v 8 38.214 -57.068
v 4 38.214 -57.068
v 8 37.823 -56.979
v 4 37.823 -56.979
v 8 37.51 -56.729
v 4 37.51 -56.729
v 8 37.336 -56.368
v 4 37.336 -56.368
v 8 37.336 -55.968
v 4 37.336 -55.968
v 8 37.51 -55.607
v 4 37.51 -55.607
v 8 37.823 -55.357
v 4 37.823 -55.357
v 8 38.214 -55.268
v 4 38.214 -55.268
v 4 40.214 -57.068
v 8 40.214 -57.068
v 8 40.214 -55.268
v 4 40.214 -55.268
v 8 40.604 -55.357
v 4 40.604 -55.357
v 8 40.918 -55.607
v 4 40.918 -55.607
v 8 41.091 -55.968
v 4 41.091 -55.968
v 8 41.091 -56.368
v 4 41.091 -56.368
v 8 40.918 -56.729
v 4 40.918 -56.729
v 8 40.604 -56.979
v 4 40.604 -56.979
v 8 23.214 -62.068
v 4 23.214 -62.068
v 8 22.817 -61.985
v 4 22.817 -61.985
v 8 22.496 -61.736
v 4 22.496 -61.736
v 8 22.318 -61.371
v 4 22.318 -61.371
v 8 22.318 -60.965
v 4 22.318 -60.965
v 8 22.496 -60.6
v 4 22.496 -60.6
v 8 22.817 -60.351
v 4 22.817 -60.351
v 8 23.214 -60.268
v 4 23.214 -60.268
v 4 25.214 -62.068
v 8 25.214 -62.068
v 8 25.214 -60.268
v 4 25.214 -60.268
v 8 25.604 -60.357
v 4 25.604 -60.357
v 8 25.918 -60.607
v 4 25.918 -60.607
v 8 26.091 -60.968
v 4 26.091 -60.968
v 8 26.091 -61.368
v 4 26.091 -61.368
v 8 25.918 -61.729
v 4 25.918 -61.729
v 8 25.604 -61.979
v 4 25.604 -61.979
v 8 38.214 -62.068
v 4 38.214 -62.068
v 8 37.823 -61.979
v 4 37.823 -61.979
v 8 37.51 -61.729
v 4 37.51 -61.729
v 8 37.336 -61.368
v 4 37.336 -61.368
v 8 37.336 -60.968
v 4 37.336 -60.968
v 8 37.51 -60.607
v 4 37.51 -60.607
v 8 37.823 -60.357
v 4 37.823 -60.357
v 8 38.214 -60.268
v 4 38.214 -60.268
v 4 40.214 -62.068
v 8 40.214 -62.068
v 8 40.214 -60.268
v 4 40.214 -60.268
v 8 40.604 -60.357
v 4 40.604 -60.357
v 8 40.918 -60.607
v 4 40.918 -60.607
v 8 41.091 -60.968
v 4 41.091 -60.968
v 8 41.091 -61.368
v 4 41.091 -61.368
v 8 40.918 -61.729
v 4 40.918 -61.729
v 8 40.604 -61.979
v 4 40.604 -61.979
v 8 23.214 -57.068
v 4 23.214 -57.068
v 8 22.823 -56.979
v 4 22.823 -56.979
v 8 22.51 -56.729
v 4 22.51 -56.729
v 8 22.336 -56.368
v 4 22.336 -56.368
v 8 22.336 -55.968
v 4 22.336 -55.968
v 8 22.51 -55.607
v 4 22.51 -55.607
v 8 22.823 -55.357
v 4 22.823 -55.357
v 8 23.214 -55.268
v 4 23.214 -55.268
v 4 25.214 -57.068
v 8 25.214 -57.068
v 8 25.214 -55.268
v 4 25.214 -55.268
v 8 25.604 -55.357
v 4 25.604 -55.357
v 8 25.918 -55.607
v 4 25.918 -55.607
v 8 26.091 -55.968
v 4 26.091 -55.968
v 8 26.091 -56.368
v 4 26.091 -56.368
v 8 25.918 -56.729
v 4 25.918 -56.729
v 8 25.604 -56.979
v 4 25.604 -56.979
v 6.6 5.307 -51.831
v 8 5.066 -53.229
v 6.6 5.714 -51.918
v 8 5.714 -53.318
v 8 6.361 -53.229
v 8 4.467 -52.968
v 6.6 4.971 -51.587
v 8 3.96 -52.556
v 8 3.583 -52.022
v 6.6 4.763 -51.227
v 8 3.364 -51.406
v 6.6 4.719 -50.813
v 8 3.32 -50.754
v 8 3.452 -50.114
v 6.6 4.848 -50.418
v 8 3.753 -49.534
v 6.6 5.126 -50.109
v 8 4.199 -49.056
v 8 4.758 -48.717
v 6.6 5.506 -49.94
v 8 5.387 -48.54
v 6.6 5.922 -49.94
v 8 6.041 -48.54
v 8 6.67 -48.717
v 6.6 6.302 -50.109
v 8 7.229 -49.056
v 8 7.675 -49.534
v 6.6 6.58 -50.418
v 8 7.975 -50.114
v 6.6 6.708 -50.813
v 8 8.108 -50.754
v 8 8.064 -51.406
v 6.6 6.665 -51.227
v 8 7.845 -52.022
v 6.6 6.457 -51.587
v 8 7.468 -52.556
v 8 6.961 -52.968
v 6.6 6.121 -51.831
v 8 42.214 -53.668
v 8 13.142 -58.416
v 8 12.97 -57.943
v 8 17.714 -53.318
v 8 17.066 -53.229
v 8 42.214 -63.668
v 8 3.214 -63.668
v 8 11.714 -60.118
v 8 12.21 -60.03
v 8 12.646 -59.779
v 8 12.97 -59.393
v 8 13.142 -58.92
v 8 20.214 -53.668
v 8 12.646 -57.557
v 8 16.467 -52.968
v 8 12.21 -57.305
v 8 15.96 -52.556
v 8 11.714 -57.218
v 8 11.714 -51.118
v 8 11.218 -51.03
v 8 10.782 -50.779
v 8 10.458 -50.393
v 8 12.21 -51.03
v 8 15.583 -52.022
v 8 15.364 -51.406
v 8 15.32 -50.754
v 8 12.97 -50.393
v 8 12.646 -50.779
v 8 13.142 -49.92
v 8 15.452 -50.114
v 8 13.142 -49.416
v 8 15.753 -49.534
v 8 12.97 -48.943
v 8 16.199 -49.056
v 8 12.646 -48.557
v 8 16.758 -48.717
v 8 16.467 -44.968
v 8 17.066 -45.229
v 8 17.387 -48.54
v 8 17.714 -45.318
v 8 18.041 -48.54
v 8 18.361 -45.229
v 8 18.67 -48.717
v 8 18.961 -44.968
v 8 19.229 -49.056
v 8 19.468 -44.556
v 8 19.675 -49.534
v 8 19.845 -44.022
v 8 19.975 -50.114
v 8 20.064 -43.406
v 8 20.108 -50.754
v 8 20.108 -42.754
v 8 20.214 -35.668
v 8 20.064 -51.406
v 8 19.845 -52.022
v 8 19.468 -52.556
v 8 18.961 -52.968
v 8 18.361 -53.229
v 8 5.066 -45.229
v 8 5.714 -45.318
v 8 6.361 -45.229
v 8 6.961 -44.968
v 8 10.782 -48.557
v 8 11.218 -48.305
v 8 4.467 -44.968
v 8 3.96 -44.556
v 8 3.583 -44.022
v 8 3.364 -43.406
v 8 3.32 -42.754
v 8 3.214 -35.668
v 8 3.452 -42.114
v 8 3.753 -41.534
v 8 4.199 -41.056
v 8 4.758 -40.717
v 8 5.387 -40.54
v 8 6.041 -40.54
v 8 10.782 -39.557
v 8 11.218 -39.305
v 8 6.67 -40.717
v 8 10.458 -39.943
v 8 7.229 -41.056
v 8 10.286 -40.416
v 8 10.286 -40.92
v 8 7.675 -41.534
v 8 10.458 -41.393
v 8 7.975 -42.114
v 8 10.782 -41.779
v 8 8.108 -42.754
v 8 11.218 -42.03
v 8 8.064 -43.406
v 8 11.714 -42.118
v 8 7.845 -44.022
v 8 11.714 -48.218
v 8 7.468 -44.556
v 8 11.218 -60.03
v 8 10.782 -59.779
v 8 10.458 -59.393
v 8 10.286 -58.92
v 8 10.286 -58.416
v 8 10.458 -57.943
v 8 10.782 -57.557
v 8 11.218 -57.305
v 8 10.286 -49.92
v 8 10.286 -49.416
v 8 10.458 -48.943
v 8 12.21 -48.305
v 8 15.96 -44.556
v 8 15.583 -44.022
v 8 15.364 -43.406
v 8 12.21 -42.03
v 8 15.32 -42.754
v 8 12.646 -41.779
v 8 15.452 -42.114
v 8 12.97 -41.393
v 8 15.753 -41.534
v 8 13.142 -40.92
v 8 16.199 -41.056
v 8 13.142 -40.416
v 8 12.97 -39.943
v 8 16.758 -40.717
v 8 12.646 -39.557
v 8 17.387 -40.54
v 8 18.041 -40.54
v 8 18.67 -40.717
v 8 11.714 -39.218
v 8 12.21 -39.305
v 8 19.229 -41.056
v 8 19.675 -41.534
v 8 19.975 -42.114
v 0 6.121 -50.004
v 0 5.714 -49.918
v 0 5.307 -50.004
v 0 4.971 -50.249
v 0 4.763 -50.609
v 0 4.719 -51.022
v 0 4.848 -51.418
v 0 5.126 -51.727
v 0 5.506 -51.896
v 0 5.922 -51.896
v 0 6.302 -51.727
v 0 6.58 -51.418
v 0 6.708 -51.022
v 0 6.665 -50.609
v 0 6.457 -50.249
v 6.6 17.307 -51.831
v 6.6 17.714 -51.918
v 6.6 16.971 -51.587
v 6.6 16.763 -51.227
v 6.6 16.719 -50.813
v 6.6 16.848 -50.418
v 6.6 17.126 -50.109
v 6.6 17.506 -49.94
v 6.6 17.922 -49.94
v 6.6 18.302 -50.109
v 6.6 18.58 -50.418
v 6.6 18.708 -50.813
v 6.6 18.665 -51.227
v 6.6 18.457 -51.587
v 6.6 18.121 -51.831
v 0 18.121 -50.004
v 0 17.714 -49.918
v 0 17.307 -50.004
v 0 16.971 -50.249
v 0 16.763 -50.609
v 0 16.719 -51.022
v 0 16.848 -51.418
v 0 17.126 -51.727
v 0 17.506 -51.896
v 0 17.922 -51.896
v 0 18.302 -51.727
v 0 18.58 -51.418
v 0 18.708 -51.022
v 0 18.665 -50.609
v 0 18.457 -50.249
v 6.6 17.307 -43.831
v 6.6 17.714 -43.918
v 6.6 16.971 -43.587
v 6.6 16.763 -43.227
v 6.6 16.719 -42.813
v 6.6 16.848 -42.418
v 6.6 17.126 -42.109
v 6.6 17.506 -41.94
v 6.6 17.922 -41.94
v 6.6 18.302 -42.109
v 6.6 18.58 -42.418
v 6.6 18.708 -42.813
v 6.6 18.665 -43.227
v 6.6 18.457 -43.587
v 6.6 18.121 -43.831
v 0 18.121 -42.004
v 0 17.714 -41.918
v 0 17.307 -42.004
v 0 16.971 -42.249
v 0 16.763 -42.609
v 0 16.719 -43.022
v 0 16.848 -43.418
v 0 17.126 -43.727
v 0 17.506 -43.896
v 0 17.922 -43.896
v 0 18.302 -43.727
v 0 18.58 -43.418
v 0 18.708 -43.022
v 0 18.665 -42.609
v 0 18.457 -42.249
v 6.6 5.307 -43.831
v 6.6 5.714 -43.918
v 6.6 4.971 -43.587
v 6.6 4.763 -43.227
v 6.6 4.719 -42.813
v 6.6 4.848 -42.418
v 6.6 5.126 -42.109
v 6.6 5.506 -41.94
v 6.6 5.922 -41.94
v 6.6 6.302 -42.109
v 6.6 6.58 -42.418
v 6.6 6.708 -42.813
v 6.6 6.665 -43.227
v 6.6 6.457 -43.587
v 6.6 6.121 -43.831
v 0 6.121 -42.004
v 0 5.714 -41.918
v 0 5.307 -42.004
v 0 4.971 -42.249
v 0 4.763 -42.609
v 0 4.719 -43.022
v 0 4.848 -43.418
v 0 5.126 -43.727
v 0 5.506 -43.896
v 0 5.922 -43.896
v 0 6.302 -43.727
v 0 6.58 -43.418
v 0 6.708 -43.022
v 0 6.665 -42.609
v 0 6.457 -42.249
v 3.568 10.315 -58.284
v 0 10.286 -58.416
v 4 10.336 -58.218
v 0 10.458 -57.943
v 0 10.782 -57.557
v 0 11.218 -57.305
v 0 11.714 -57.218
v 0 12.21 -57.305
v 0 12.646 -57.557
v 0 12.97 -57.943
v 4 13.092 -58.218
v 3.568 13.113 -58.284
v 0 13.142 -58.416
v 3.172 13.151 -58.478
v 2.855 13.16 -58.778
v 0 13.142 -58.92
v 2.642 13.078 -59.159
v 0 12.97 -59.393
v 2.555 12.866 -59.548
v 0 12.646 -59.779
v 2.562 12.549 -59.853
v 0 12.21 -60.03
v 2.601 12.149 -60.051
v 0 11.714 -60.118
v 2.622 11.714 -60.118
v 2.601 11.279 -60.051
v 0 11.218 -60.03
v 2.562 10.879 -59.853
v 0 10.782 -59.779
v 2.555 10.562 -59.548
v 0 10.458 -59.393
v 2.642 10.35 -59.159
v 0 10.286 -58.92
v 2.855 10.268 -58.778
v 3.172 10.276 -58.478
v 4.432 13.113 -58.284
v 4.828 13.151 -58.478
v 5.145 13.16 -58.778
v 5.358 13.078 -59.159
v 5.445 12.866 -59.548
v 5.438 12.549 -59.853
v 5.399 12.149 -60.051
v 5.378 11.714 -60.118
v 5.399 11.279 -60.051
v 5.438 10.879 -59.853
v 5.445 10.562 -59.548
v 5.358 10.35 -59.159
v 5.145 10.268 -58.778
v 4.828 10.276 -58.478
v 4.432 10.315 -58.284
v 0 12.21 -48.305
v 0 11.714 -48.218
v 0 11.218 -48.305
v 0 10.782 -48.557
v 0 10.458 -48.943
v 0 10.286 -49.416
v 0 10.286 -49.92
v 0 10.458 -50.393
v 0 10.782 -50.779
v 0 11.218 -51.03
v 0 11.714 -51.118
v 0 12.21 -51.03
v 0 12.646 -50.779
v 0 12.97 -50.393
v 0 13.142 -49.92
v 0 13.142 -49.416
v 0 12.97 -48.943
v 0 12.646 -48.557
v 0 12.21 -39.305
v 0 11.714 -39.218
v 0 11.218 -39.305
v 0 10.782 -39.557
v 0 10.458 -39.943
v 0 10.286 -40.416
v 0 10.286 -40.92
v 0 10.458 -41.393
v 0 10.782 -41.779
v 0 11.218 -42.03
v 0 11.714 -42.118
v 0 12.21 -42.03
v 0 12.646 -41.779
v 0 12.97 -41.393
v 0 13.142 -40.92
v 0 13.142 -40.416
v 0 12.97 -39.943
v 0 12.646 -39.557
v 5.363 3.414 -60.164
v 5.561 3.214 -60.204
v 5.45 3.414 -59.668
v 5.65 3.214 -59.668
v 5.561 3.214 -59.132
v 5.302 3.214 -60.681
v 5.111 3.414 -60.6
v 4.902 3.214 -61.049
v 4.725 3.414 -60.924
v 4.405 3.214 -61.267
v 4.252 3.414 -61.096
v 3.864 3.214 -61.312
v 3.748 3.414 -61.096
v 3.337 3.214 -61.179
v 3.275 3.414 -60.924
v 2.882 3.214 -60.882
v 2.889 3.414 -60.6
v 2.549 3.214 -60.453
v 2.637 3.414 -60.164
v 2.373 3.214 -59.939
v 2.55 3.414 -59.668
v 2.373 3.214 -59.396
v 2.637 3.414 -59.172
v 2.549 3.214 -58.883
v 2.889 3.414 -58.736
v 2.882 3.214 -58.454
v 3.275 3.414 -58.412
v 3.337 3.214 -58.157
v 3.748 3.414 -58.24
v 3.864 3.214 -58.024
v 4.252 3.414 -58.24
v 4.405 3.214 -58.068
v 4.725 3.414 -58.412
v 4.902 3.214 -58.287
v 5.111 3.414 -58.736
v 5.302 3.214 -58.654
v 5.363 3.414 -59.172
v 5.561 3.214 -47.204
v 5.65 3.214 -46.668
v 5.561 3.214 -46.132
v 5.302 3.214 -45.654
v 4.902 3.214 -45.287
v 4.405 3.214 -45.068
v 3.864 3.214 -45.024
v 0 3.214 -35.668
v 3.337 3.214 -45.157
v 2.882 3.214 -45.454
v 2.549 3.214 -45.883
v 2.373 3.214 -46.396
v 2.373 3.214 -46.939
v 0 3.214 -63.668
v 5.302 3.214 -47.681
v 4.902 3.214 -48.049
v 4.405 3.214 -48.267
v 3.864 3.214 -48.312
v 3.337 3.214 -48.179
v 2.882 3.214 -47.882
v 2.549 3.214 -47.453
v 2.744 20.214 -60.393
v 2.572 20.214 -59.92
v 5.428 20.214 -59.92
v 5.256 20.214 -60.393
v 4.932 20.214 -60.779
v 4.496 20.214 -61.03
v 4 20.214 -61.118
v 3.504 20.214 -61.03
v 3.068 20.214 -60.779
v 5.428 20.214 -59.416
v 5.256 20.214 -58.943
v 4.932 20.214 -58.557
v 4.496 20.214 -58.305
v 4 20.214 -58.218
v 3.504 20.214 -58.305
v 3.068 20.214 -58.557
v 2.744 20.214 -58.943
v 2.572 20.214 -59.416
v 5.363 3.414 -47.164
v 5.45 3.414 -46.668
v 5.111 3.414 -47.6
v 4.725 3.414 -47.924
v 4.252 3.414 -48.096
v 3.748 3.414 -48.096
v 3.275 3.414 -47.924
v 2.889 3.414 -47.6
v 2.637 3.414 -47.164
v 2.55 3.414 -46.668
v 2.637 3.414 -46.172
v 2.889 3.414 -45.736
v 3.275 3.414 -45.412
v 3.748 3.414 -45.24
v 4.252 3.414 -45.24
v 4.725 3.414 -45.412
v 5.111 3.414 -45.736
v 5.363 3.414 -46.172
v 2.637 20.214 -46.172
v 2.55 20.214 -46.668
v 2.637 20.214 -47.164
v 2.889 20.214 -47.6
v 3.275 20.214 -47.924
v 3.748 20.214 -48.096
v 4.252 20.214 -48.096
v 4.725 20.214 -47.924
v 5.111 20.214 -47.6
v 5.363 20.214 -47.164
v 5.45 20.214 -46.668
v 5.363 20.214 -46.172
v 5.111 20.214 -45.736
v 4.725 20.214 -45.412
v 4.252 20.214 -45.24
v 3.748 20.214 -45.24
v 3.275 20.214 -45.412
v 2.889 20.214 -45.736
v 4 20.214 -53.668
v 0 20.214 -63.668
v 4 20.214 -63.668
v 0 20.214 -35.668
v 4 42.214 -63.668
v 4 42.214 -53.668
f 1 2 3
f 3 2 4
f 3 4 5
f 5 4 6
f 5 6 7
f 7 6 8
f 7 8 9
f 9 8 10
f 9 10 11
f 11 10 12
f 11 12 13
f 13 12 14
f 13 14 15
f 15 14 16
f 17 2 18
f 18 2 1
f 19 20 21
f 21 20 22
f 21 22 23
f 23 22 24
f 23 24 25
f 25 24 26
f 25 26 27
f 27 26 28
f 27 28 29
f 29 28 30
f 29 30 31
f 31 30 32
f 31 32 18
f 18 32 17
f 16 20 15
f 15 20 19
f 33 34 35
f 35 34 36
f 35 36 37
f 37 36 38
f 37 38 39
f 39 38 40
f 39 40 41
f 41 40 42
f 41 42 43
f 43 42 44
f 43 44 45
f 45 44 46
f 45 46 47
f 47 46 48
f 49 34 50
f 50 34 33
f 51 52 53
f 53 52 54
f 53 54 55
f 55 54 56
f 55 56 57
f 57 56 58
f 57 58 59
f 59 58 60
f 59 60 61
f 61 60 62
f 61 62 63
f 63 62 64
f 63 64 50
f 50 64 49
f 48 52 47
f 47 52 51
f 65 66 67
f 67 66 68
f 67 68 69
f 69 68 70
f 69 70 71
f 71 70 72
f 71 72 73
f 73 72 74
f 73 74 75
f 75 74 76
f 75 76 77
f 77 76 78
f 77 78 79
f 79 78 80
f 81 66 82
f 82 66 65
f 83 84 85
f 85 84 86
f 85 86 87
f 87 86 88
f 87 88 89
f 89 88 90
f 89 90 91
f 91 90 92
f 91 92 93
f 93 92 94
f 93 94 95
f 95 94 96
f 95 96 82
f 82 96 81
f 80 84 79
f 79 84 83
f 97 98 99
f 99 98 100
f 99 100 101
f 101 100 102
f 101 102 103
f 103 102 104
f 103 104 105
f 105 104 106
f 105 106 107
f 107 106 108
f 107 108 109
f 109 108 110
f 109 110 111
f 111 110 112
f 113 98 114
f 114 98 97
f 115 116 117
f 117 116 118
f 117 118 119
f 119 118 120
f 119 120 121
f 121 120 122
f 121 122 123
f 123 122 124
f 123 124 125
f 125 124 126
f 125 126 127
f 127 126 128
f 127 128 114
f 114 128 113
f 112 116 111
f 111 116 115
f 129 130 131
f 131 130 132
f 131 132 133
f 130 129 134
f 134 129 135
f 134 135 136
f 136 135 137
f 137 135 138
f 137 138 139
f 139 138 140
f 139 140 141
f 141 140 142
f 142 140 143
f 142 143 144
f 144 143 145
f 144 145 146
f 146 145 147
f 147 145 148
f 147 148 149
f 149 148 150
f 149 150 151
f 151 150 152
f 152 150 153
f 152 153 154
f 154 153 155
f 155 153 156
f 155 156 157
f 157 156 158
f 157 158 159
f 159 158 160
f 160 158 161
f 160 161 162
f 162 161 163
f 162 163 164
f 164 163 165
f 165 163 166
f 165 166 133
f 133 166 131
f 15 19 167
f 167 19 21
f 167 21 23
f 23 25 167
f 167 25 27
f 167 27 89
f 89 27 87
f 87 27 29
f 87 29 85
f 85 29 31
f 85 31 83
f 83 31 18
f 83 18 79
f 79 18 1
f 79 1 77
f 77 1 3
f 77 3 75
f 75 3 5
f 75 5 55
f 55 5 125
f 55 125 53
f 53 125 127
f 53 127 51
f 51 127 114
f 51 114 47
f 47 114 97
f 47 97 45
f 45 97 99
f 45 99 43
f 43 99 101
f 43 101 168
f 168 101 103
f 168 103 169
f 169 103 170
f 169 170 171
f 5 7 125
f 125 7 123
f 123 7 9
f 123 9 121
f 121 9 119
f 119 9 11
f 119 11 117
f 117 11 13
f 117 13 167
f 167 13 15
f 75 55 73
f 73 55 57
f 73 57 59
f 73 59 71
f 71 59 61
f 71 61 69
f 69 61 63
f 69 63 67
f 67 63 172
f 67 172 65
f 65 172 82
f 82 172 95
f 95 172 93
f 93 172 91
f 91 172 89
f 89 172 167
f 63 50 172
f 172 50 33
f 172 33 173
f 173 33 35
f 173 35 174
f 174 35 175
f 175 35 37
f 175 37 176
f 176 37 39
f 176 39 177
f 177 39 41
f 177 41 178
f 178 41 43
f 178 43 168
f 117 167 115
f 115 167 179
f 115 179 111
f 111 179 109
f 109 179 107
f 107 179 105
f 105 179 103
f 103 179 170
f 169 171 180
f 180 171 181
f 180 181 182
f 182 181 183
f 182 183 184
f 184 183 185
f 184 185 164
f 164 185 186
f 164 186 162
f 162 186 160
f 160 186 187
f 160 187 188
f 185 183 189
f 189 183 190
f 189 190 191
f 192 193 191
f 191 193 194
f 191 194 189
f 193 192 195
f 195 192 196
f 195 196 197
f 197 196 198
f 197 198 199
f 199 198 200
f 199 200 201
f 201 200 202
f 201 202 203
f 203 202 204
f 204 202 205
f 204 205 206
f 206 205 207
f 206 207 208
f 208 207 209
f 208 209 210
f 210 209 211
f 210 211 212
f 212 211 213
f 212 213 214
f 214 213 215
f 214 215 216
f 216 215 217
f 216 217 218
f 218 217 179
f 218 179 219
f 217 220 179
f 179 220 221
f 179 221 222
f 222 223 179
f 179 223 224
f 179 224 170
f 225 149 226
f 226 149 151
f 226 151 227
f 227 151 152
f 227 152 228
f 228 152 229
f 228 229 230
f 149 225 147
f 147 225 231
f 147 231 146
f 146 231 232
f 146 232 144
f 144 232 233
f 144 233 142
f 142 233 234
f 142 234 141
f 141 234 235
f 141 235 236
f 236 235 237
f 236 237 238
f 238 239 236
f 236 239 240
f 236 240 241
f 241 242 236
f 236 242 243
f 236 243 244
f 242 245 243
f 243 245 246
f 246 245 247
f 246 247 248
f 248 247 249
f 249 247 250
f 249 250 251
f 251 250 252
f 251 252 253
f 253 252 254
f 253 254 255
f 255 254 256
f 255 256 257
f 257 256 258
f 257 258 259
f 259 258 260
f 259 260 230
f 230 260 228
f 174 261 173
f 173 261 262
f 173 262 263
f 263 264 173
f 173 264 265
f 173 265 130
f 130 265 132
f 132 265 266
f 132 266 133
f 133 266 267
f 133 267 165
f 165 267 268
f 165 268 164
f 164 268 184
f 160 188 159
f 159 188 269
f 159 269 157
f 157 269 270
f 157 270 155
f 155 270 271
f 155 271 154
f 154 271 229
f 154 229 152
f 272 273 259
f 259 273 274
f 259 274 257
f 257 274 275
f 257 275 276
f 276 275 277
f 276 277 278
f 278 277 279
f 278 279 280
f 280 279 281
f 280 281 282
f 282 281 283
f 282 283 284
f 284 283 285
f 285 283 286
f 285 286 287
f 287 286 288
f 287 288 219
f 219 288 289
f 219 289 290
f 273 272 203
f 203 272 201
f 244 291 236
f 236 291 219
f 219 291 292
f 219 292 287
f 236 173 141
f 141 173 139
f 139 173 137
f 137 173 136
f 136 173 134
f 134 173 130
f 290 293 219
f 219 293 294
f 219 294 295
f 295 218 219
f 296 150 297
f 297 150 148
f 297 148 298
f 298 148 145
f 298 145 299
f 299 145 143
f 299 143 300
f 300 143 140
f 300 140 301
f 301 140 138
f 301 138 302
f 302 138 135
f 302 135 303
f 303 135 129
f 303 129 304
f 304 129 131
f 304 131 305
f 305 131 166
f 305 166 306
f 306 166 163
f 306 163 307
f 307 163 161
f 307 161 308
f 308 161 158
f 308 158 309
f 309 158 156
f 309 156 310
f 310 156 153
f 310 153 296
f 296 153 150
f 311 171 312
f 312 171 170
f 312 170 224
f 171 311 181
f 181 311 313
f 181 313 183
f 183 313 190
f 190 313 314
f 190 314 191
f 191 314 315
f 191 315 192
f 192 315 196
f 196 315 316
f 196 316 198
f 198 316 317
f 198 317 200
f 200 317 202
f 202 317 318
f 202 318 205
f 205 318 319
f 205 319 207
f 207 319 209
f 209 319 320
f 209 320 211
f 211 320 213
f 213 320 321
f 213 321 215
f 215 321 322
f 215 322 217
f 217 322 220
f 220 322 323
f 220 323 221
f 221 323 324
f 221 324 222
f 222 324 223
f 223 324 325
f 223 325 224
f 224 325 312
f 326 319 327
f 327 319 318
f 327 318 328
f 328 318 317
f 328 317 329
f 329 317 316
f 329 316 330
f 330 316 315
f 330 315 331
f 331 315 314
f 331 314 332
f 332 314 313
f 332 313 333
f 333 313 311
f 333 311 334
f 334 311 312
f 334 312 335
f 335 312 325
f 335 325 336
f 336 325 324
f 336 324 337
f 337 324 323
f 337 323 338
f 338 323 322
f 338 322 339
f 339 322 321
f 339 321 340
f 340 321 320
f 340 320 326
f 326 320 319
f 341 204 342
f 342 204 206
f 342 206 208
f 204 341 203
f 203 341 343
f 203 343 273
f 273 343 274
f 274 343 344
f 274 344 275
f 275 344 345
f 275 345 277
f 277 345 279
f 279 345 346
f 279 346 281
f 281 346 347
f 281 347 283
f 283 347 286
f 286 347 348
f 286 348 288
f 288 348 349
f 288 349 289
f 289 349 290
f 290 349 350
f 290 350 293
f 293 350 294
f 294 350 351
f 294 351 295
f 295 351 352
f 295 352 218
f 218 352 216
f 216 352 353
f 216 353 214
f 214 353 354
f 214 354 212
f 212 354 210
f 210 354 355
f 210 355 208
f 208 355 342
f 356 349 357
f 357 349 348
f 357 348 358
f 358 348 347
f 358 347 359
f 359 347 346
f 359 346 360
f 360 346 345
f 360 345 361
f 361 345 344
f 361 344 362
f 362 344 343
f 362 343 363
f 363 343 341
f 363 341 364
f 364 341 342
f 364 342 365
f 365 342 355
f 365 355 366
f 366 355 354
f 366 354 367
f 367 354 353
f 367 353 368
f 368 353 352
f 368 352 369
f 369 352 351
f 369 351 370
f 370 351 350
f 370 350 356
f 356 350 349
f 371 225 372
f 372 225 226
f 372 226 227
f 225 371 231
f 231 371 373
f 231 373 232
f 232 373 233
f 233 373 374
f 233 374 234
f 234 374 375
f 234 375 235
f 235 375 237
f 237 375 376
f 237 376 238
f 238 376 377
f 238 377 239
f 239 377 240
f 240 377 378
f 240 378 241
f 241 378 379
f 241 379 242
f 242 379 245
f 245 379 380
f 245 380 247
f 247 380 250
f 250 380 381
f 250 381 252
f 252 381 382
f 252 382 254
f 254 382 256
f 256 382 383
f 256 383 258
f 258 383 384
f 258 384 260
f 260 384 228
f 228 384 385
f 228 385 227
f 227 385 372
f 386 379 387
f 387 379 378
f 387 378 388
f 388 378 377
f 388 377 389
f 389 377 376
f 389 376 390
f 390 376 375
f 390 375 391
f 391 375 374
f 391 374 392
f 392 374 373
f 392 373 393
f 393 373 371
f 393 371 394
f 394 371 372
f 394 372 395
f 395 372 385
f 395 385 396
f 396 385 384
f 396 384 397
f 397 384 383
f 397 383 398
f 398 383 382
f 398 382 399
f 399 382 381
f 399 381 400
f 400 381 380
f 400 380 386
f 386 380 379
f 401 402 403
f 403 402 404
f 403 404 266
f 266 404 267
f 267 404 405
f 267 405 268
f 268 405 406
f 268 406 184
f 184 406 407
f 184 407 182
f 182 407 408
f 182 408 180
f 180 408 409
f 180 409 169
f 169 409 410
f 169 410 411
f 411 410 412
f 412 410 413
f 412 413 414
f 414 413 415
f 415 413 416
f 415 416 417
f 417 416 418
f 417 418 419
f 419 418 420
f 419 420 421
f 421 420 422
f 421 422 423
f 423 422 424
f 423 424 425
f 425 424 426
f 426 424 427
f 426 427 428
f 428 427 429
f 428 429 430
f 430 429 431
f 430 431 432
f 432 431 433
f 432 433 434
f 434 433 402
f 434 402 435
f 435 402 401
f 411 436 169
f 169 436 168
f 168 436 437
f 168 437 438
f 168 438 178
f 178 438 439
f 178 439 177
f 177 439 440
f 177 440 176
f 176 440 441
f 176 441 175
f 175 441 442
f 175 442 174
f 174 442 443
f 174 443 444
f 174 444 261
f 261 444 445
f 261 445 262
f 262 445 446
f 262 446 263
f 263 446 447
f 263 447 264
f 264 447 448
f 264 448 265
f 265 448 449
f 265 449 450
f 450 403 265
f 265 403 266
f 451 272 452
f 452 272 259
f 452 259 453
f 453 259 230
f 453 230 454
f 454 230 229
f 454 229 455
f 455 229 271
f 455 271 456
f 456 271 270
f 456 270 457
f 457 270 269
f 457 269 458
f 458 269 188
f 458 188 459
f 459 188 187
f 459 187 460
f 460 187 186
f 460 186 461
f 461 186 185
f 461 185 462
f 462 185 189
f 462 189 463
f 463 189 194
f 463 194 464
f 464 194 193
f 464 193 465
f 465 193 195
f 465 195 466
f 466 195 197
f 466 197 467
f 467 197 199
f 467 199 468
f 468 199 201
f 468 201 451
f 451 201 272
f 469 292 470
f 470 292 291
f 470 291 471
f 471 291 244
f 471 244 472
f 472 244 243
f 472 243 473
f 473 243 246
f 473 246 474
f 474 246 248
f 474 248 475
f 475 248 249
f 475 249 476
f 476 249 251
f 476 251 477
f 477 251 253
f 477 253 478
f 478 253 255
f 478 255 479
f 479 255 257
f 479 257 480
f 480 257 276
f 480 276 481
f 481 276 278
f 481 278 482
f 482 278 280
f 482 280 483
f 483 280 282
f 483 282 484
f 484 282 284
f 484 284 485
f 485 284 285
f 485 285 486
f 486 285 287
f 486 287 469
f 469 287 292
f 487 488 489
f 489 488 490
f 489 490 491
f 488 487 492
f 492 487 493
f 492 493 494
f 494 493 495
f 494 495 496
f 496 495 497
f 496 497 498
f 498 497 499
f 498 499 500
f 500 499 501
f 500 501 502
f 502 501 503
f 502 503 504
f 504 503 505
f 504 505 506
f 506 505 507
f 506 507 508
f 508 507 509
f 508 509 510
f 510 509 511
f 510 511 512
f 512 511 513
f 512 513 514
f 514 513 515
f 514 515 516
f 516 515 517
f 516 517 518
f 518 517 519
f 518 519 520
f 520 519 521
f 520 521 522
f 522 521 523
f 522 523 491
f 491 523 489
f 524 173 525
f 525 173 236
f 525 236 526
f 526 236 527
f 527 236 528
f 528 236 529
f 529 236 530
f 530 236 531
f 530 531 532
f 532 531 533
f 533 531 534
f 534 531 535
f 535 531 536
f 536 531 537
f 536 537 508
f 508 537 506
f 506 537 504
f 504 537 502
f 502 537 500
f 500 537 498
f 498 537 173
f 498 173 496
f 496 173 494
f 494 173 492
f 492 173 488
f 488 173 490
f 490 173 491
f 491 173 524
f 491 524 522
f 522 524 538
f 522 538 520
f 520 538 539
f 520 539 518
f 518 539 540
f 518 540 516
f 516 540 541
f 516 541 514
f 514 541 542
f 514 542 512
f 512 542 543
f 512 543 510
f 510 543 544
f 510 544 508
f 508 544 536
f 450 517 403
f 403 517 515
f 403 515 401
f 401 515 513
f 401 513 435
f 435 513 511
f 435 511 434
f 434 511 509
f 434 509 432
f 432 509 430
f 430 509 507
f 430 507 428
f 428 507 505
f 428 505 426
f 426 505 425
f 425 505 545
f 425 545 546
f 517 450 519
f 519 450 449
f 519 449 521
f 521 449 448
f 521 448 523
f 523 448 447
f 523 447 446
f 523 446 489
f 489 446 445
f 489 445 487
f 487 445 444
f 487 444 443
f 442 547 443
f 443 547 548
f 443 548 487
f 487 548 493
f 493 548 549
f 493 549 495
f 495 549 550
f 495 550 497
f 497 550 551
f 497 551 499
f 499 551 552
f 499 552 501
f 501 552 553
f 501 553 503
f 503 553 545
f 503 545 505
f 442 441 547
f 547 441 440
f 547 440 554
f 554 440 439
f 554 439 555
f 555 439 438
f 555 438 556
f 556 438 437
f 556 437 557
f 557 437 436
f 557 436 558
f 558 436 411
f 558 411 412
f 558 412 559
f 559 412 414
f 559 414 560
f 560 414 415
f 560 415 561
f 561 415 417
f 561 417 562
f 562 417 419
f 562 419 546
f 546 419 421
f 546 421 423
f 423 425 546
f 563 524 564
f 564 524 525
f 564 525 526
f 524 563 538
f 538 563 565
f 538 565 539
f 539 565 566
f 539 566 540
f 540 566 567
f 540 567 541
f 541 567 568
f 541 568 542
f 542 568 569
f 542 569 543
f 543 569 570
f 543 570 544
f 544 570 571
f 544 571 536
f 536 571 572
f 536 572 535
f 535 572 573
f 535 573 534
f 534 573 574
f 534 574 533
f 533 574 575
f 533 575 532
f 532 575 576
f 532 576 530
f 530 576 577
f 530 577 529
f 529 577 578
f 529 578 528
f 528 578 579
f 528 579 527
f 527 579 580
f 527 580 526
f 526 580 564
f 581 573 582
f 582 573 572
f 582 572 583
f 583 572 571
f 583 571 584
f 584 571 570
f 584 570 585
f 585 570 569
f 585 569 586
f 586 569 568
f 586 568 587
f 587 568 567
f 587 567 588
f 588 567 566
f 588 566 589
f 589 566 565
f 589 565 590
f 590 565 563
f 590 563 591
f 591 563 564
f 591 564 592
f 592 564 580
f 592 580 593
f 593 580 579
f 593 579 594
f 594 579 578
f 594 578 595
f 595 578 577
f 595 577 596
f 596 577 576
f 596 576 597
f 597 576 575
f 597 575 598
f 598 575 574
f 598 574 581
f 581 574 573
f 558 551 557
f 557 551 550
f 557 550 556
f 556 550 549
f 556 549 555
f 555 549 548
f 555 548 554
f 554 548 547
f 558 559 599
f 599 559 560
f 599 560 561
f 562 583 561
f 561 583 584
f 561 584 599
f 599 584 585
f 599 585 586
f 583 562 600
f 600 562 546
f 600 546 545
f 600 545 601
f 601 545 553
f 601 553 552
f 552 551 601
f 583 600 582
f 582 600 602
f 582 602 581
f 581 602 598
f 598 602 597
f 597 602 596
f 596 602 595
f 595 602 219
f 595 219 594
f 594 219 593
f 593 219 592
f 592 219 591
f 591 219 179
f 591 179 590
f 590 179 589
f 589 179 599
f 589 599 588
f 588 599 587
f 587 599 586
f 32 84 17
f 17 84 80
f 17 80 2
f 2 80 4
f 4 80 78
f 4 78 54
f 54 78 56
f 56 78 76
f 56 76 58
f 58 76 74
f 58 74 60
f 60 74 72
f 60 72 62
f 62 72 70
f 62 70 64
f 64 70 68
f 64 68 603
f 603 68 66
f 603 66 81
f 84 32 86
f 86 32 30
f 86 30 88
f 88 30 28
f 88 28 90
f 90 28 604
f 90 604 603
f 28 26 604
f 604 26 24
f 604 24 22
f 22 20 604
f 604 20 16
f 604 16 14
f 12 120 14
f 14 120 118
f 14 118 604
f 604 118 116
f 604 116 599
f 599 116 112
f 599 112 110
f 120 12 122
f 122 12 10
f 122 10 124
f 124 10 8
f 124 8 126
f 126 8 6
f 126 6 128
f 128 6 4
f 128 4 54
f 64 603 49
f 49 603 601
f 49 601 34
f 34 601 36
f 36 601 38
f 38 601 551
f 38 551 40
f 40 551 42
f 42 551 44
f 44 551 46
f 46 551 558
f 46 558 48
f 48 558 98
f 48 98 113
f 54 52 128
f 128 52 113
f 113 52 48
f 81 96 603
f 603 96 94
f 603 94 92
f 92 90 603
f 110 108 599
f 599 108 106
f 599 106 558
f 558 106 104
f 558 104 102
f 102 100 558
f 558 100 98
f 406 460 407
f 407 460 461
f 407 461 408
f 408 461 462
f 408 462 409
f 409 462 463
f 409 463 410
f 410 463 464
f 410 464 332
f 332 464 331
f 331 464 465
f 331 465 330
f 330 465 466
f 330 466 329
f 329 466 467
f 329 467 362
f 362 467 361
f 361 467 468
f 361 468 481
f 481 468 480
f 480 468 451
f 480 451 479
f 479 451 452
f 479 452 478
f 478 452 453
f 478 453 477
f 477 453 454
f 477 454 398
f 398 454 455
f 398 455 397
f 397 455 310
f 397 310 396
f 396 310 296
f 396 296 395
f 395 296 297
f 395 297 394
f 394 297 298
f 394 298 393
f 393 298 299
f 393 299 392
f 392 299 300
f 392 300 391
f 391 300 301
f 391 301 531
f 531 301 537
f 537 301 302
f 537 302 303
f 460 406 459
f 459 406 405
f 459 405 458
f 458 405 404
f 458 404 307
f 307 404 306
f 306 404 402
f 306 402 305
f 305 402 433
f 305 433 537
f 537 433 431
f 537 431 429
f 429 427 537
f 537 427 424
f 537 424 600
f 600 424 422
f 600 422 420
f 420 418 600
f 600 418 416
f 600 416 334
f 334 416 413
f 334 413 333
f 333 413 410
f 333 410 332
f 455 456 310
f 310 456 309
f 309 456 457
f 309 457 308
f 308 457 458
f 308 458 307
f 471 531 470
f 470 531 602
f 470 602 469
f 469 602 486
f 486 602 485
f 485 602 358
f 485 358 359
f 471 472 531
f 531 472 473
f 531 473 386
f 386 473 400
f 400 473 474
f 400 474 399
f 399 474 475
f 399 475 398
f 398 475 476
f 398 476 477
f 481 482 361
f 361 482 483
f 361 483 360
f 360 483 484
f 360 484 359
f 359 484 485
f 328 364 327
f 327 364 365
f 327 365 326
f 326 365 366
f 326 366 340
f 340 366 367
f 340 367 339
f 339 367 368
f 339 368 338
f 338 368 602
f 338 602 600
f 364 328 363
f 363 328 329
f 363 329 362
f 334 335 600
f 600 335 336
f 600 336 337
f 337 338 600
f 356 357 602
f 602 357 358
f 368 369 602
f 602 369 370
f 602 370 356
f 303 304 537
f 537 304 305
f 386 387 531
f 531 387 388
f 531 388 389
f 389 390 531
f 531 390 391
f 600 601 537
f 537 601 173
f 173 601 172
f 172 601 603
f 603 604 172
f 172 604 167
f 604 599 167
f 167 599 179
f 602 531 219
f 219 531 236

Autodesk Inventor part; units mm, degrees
ref_plane "YZ Plane" through (0, 0, 0) normal (1, 0, 0) x (0, 1, 0)
ref_plane "XZ Plane" through (0, 0, 0) normal (0, 1, 0) x (-1, 0, 0)
ref_plane "XY Plane" through (0, 0, 0) normal (0, 0, 1) x (1, 0, 0)
sketch "Sketch1" plane through (0, 0, 0) normal (1, 0, 0) x (0, 1, 0)
  line L0 (3.2139, -35.6679) -> (20.2139, -35.6679)
  line L1 (20.2139, -35.6679) -> (20.2139, -63.6679)
  line L2 (20.2139, -63.6679) -> (3.2139, -63.6679)
  line L3 (3.2139, -63.6679) -> (3.2139, -35.6679)
  point P0 (0, 0)
  dimension "d0" = 17
  dimension "d1" = 28
extrude "Extrusion1" add sketch "Sketch1" along normal blind 8
sketch "Sketch2" plane through (8, 0, 0) normal (1, 0, 0) x (0, 0, -1)
  line L0 (63.6679, 3.2139) -> (63.6679, 20.2139) projected
  line L1 (63.6679, 20.2139) -> (53.6679, 20.2139)
  line L2 (53.6679, 20.2139) -> (53.6679, 42.2139)
  line L3 (53.6679, 42.2139) -> (63.6679, 42.2139)
  line L4 (63.6679, 42.2139) -> (63.6679, 20.2139)
  point P0 (0, 0)
  dimension "d4" = 10
  dimension "d5" = 22
extrude "Extrusion2" add sketch "Sketch2" against normal up to surface (8 mm away)
sketch "Sketch3" plane through (8, 20.2139, -53.6679) normal (0, 0, 1) x (1, 0, 0)
  line L0 (-8, 0) -> (0, 0) projected
  line L1 (-8, -17) -> (-8, 22) projected
  line L2 (-4, 0) -> (-8, 0)
  line L3 (-8, 0) -> (-8, 22)
  line L4 (-8, 22) -> (-4, 22)
  line L5 (-4, 22) -> (-4, 0)
  point P0 (-8, -20.2139)
  dimension "d8" = 4
extrude "Extrusion3" cut sketch "Sketch3" against normal through all
sketch "Sketch4" plane through (8, 0, 0) normal (1, 0, 0) x (0, 0, -1)
  circle A0 centre (42.9179, 5.7139) radius 1
  circle A1 centre (42.9179, 17.7139) radius 1
  circle A2 centre (50.9179, 5.7139) radius 1
  circle A3 centre (50.9179, 17.7139) radius 1
  line L0 (35.6679, 3.2139) -> (63.6679, 3.2139) projected
  line L1 (53.6679, 20.2139) -> (35.6679, 20.2139) projected
  line L2 (35.6679, 20.2139) -> (35.6679, 3.2139) projected
  point P0 (0, 0)
  dimension "d11" = 2
  dimension "d13" = 2
  dimension "d14" = 2
  dimension "d15" = 2
  dimension "d16" = 2.5
  dimension "d17" = 2.5
  dimension "d18" = 2.5
  dimension "d19" = 2.5
  dimension "d20" = 7.25
  dimension "d21" = 7.25
  dimension "d22" = 8
  dimension "d23" = 8
extrude "Extrusion4" cut sketch "Sketch4" against normal through all
sketch "Sketch5" plane through (0, 3.2139, -63.6679) normal (0, -1, 0) x (1, 0, 0)
  line L0 (4, 10) -> (4, 0) projected
  circle A0 centre (4, 4) radius 1.45
  circle A1 centre (4, 17) radius 1.45
  line L1 (8, 28) -> (8, 0) projected
  line L2 (0, 0) -> (8, 0) projected
  point P0 (0, 63.6679)
  dimension "d26" = 2.9
  dimension "d27" = 2.9
  dimension "d28" = 4
  dimension "d29" = 4
  dimension "d30" = 17
extrude "Extrusion5" cut sketch "Sketch5" against normal up to surface (17 mm away)
chamfer "Chamfer1" distance 0.2 angle 45 2 edges at (2.55, 3.2139, -46.6679) (2.55, 3.2139, -59.6679)
sketch "Sketch8" plane through (8, 0, 0) normal (1, 0, 0) x (0, 0, -1)
  circle A0 centre (40.6679, 11.7139) radius 1.45
  circle A1 centre (58.6679, 11.7139) radius 1.45
  circle A2 centre (49.6679, 11.7139) radius 1.45
  line L0 (53.6679, 20.2139) -> (35.6679, 20.2139) projected
  line L1 (35.6679, 3.2139) -> (63.6679, 3.2139) projected
  line L2 (63.6679, 3.2139) -> (63.6679, 42.2139) projected
  line L3 (35.6679, 20.2139) -> (35.6679, 3.2139) projected
  point P0 (0, 0)
  dimension "d53" = 8.5
  dimension "d54" = 8.5
  dimension "d55" = 8.5
  dimension "d56" = 2.9
  dimension "d57" = 2.9
  dimension "d58" = 2.9
  dimension "d59" = 5
  dimension "d60" = 14
  dimension "d61" = 5
extrude "Extrusion7" cut sketch "Sketch8" against normal through all
chamfer "Chamfer3" distance 1.4 angle 45 4 edges at (8, 5.7139, -41.9179) (8, 17.7139, -41.9179) (8, 17.7139, -49.9179) (8, 5.7139, -49.9179)
sketch "Sketch9" plane through (8, 0, 0) normal (1, 0, 0) x (0, 0, -1)
  circle A0 centre (56.1679, 25.2139) radius 0.9
  circle A1 centre (61.1679, 25.2139) radius 0.9
  circle A2 centre (61.1679, 40.2139) radius 0.9
  circle A3 centre (56.1679, 40.2139) radius 0.9
  line L0 (53.6679, 42.2139) -> (53.6679, 20.2139) projected
  line L1 (63.6679, 42.2139) -> (53.6679, 42.2139) projected
  line L2 (63.6679, 3.2139) -> (63.6679, 42.2139) projected
  line L3 (55.2679, 25.2139) -> (57.0679, 25.2139)
  line L4 (57.0679, 25.2139) -> (57.0679, 23.2139)
  line L5 (57.0679, 23.2139) -> (55.2679, 23.2139)
  line L6 (55.2679, 23.2139) -> (55.2679, 25.2139)
  line L7 (60.2679, 25.2139) -> (62.0679, 25.2139)
  line L8 (62.0679, 25.2139) -> (62.0679, 23.2139)
  line L9 (62.0679, 23.2139) -> (60.2679, 23.2139)
  line L10 (60.2679, 23.2139) -> (60.2679, 25.2139)
  line L11 (57.0679, 40.2139) -> (55.2679, 40.2139)
  line L12 (55.2679, 40.2139) -> (55.2679, 38.2139)
  line L13 (55.2679, 38.2139) -> (57.0679, 38.2139)
  line L14 (57.0679, 38.2139) -> (57.0679, 40.2139)
  line L15 (62.0679, 40.2139) -> (60.2679, 40.2139)
  line L16 (60.2679, 40.2139) -> (60.2679, 38.2139)
  line L17 (60.2679, 38.2139) -> (62.0679, 38.2139)
  line L18 (62.0679, 38.2139) -> (62.0679, 40.2139)
  arc A4 (55.2679, 23.2139) -> (57.0679, 23.2139) centre (56.1679, 23.2139) ccw
  arc A5 (60.2679, 23.2139) -> (62.0679, 23.2139) centre (61.1679, 23.1946) ccw
  arc A6 (60.2679, 38.2139) -> (62.0679, 38.2139) centre (61.1679, 38.2139) ccw
  arc A7 (55.2679, 38.2139) -> (57.0679, 38.2139) centre (56.1679, 38.2139) ccw
  point P0 (0, 0)
  dimension "d70" = 1.8
  dimension "d71" = 1.8
  dimension "d72" = 1.8
  dimension "d73" = 1.8
  dimension "d74" = 2.5
  dimension "d75" = 2
  dimension "d76" = 2
  dimension "d77" = 2.5
  dimension "d78" = 2.5
  dimension "d79" = 2.5
  dimension "d80" = 15
  dimension "d81" = 15
  dimension "d82" = 1.8
  dimension "d83" = 1.8
  dimension "d84" = 1.8
  dimension "d85" = 2
  dimension "d86" = 2
  dimension "d87" = 2
  dimension "d88" = 0.9
  dimension "d89" = 0.9
extrude "Extrusion8" cut sketch "Sketch9" against normal through all
properties part number "Z_probe_holder"
